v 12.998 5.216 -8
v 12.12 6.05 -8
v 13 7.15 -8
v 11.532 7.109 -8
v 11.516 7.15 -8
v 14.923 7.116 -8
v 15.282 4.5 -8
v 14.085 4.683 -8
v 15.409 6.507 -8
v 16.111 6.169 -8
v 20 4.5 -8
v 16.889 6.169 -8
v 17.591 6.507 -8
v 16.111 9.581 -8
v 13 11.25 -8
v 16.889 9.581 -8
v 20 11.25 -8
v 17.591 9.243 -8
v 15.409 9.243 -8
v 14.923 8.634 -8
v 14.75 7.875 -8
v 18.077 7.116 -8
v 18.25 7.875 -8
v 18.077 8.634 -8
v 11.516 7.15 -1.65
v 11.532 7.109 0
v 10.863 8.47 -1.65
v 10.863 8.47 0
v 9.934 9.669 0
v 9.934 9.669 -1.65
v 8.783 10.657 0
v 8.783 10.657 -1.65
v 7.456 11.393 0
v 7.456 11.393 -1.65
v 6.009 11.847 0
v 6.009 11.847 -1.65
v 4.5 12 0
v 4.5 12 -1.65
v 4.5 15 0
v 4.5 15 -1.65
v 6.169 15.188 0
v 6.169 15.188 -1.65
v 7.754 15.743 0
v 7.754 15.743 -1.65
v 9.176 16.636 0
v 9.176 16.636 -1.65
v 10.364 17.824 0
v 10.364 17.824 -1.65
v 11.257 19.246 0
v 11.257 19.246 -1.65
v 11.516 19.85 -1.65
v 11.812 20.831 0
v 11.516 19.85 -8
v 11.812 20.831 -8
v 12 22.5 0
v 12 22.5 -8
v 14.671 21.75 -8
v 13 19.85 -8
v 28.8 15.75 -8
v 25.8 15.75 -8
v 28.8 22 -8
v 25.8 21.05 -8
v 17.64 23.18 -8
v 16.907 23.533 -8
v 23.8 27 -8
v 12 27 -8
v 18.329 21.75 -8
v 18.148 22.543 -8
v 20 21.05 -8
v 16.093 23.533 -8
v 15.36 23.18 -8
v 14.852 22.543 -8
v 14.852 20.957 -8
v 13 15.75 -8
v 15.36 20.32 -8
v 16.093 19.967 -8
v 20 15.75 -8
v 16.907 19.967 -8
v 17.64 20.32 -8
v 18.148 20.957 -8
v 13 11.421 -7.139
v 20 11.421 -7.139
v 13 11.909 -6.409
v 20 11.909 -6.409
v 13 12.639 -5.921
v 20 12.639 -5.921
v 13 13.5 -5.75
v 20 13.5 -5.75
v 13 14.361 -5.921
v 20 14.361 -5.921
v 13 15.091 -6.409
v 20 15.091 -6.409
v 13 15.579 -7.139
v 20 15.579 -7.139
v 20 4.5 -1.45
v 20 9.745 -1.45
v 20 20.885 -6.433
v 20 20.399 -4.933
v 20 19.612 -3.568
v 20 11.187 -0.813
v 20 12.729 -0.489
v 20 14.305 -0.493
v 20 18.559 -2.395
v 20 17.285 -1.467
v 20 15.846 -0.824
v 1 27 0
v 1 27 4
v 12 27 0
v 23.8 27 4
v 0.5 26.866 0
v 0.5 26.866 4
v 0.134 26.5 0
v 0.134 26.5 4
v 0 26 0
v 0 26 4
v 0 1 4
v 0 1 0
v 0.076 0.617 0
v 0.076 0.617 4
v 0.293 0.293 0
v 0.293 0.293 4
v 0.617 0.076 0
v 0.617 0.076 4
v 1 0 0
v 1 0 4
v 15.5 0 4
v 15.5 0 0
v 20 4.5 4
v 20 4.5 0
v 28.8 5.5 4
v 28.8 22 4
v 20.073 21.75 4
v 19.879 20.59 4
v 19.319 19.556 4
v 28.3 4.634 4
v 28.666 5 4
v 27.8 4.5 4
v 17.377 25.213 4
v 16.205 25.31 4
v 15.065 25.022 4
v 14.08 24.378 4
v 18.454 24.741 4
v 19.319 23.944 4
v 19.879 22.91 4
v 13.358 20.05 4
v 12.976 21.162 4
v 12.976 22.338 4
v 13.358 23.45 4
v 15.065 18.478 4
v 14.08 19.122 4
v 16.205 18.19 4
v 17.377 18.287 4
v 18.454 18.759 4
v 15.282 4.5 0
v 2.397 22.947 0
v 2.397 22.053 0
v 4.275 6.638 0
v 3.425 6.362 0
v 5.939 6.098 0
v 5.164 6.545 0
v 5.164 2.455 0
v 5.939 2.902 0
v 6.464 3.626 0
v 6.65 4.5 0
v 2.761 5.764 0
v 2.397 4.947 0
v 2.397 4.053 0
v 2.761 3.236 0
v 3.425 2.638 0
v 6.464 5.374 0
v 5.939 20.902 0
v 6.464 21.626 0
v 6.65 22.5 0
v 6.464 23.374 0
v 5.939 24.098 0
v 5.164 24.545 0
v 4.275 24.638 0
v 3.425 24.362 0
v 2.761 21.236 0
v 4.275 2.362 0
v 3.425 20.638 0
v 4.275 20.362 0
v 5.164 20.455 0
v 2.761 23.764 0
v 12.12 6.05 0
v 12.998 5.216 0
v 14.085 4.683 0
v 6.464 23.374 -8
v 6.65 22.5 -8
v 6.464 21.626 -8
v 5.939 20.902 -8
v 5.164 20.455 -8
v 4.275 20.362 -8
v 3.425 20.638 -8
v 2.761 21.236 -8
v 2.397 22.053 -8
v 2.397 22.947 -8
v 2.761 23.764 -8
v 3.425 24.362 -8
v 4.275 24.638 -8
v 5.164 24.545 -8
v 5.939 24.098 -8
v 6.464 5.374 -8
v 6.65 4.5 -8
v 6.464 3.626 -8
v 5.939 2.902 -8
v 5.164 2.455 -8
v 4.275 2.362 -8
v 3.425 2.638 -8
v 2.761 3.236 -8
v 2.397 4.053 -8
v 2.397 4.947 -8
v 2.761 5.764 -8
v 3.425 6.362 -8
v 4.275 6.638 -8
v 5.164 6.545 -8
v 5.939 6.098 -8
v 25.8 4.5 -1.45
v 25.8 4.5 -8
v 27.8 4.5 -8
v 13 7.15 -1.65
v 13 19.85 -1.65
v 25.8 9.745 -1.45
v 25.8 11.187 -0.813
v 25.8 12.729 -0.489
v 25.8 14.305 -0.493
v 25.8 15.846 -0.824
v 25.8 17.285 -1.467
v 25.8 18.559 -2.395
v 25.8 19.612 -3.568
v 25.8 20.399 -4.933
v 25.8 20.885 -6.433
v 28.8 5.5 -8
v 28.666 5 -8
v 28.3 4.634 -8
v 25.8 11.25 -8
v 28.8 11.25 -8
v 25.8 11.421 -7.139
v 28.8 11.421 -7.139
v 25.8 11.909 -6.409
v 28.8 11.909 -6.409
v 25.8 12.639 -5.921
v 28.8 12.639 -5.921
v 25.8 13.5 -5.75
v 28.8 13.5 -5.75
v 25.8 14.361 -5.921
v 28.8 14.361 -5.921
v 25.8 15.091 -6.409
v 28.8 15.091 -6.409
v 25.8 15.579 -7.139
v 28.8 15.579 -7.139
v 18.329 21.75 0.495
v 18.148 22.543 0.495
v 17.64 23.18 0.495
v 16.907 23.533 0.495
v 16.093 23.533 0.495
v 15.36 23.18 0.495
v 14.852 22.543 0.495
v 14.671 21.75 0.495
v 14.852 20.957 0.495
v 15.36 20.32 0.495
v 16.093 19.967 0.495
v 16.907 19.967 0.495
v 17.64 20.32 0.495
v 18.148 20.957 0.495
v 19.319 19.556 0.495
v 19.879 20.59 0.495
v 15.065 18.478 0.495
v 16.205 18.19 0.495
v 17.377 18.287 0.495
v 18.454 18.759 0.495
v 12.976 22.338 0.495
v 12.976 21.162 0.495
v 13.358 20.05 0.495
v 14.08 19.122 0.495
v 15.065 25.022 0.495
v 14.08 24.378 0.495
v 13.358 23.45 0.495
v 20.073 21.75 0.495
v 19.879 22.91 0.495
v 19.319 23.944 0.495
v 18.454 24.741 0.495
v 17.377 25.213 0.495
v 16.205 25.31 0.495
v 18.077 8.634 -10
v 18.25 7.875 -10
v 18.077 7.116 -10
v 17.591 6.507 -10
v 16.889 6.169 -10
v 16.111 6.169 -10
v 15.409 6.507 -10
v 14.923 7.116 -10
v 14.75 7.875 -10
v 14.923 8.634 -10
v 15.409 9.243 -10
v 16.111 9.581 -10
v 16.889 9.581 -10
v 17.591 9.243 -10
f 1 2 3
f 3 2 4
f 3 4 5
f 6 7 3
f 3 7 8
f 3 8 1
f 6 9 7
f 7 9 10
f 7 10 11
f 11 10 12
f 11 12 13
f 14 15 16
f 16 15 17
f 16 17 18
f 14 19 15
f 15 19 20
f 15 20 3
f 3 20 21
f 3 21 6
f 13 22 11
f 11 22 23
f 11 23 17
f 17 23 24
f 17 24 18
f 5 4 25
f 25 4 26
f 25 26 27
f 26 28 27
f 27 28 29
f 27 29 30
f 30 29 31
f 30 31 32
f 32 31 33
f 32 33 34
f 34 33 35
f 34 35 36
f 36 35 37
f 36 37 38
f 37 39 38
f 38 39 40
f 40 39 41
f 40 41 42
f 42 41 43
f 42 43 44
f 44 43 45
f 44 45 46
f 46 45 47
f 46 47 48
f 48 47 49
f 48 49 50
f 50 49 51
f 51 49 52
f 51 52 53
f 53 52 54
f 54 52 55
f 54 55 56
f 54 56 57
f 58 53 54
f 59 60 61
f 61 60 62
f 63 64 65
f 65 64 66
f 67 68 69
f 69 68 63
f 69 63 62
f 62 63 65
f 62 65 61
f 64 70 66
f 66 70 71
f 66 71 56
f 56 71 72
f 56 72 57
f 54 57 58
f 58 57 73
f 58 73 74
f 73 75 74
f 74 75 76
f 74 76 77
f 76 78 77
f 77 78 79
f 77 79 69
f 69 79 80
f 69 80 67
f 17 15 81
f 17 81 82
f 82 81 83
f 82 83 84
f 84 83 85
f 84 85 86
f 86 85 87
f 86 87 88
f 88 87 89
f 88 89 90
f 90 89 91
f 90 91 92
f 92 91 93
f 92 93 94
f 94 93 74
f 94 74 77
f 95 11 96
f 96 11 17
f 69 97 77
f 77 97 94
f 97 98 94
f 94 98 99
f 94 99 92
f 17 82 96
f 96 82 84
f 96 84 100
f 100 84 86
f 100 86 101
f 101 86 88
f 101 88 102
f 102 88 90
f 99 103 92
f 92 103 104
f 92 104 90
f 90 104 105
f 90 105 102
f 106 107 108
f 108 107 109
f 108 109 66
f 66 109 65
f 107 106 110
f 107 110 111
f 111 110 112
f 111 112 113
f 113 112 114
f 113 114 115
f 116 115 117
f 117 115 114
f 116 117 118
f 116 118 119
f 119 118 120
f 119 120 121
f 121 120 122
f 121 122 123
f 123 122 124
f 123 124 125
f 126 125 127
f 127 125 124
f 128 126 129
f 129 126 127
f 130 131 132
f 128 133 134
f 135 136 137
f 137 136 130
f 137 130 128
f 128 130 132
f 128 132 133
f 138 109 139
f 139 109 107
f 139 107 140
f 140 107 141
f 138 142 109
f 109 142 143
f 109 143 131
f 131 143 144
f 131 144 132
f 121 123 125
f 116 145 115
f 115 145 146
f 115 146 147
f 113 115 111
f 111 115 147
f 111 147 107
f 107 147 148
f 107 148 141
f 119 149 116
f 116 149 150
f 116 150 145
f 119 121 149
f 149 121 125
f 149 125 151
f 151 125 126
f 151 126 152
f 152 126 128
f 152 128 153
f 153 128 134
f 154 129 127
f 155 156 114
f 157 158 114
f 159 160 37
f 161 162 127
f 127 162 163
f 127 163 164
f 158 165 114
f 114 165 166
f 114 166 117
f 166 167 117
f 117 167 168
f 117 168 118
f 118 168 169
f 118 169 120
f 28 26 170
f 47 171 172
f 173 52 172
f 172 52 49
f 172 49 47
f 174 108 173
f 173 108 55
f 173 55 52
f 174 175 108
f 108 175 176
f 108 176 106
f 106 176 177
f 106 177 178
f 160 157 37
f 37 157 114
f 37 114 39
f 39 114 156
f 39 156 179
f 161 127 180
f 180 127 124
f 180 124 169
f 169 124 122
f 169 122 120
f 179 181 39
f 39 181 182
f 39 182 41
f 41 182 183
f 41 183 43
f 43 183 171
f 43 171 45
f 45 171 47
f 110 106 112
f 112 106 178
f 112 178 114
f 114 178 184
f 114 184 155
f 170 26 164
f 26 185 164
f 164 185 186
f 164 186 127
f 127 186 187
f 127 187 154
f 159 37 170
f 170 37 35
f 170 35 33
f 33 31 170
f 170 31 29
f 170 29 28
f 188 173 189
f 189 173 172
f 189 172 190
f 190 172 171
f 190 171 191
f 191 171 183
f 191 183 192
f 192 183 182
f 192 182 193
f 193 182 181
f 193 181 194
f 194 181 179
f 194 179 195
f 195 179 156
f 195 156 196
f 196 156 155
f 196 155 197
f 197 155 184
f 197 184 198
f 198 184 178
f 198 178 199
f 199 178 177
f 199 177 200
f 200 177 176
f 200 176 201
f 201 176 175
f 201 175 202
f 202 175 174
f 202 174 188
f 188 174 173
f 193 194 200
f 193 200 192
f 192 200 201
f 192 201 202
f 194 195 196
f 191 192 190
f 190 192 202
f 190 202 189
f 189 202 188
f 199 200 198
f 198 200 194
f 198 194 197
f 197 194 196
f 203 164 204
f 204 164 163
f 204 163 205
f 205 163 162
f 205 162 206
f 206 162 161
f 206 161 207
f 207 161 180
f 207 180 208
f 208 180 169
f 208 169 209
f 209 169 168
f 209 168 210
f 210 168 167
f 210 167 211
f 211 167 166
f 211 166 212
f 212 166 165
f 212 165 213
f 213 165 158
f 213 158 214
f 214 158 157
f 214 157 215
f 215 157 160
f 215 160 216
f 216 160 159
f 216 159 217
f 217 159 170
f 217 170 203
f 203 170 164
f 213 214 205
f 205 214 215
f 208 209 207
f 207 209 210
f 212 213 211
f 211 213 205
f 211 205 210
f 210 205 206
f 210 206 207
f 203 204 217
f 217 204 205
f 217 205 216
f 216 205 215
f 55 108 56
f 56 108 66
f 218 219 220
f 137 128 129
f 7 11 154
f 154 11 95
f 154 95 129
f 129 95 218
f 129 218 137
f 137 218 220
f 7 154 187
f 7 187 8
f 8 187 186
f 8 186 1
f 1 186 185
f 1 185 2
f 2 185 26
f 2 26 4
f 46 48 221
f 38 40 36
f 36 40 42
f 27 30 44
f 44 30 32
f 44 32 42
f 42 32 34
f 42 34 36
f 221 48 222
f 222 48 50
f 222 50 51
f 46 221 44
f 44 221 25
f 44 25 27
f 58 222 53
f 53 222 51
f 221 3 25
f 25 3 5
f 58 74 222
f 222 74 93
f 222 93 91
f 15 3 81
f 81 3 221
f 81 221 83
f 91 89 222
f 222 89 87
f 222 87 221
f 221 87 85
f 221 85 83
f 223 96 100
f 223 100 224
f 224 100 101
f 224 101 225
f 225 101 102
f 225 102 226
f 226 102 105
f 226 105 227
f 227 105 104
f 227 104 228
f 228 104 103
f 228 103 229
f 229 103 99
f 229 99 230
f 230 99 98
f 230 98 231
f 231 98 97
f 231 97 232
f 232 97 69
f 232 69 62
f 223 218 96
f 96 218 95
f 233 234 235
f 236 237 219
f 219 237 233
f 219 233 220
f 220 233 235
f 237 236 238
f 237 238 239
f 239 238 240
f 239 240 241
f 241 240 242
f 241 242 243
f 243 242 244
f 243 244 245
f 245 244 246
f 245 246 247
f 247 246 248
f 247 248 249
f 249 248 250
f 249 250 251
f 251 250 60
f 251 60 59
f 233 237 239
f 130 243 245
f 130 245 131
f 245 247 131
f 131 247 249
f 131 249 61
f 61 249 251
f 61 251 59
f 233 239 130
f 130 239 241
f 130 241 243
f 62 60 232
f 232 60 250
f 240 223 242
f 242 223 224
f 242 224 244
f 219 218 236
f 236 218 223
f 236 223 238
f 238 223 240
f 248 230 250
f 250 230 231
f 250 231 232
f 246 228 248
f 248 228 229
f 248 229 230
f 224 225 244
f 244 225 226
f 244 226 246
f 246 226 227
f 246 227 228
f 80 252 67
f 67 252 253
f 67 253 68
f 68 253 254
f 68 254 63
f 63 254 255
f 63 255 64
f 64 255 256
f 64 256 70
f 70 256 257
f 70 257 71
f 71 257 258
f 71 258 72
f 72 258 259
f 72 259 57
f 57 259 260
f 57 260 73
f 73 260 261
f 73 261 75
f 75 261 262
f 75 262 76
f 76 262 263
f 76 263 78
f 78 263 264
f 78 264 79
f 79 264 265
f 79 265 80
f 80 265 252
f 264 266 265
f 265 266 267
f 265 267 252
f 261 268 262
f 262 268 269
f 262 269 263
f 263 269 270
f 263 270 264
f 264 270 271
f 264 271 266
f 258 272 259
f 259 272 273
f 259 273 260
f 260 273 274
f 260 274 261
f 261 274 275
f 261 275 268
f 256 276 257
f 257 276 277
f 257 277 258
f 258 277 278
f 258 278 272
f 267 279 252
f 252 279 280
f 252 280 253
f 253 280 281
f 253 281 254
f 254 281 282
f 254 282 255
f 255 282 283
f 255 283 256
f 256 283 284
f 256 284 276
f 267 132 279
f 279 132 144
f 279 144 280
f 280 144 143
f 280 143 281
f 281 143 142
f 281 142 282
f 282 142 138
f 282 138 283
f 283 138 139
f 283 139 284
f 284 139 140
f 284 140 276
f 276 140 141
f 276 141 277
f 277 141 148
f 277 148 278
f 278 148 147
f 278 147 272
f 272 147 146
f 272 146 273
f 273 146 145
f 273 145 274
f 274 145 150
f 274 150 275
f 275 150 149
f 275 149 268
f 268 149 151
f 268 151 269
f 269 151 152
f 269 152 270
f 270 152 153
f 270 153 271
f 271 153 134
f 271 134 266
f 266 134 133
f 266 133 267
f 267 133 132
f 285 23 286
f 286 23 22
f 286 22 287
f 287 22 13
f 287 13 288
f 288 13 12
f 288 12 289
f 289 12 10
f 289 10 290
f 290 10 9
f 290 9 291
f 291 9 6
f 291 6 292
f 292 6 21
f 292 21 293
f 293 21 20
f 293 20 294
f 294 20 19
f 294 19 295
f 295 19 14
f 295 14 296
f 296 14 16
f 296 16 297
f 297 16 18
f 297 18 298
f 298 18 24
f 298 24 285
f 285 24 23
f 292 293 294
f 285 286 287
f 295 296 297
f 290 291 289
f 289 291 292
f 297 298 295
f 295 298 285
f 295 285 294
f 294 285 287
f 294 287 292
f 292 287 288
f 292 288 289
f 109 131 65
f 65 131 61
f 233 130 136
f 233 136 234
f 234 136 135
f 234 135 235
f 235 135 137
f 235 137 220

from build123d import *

# Parameters (mm, degrees)
BOSS_EXTRUDE1_DEPTH                            = 4
SKETCH3_R                                      = 2.15
BOSS_EXTRUDE2_DEPTH                            = 8
BOSS_EXTRUDE3_DEPTH                            = 8
CUT_EXTRUDE2_REACH                             = 34.144
SKETCH4_R                                      = 2.25
SKETCH4_4_W                                    = 12.7
SKETCH4_4_H                                    = 12.7
SKETCH4_4_R                                    = 2.25
CUT_EXTRUDE3_DEPTH                             = 8.5
BOSS_EXTRUDE4_DEPTH                            = 5.8
BOSS_EXTRUDE7_DEPTH                            = 3
CBORE_FOR_6_SOCKET_HEAD_CAP_SCREW1_D           = 3.6576
CBORE_FOR_6_SOCKET_HEAD_CAP_SCREW1_CBORE_D     = 7.14502
CBORE_FOR_6_SOCKET_HEAD_CAP_SCREW1_CBORE_DEPTH = 3.5052
SKETCH12_R                                     = 1.75
BOSS_EXTRUDE8_DEPTH                            = 2
CHAMFER1_SIZE                                  = 5
FILLET1_R                                      = 1


with BuildPart() as part:
    # Sketch2 → Boss-Extrude1 (new body)
    with BuildSketch(Plane.XY):
        with BuildLine():
            Line((15.5, 0), (20, 4.5))
            Line((20, 4.5), (20, 27))
            Line((20, 27), (1, 27))
            ThreePointArc((1, 27), (0.292893219, 26.707106781), (0, 26))
            Line((0, 26), (0, 1))
            ThreePointArc((0, 1), (0.292893219, 0.292893219), (1, 0))
            Line((1, 0), (15.5, 0))
        make_face()
    extrude(amount=BOSS_EXTRUDE1_DEPTH)

    # Sketch3 → Boss-Extrude2 (add)
    with BuildSketch(Plane.XY):
        with Locations((4.5, 22.5)):
            Circle(SKETCH3_R)
        with Locations((4.5, 4.5)):
            Circle(SKETCH3_R)
    extrude(amount=-BOSS_EXTRUDE2_DEPTH)

    # Sketch3<3> → Boss-Extrude3 (add)
    with BuildSketch(Plane.XY):
        with BuildLine():
            Line((4.5, 15), (4.5, 12))
            ThreePointArc((4.5, 12), (8.782801805, 10.656915518), (11.531693039, 7.108695652))
            ThreePointArc((11.531693039, 7.108695652), (12.997768364, 5.216311724), (15.281929326, 4.5))
            Line((15.281929326, 4.5), (20, 4.5))
            Line((20, 4.5), (20, 27))
            Line((20, 27), (12, 27))
            Line((12, 27), (12, 22.5))
            ThreePointArc((12, 22.5), (9.803300859, 17.196699141), (4.5, 15))
        make_face()
    extrude(amount=-BOSS_EXTRUDE3_DEPTH)

    # Cut-Extrude2: up to this face of the body (flat: up to its plane)
    cut_extrude2_end = Plane(part.part.faces().sort_by_distance((20, 15.75, -2))[0])
    # Sketch4 → Cut-Extrude2 (cut, up to the picked face)
    with BuildSketch(Plane(origin=(4.5, 0, 0), x_dir=(0, 0, -1), z_dir=(1, 0, 0)), mode=Mode.PRIVATE) as cut_extrude2_sk1:
        with Locations((8, 13.5)):
            Circle(SKETCH4_R)
    cut_extrude2_tool1 = split(extrude(cut_extrude2_sk1.sketch, amount=CUT_EXTRUDE2_REACH, mode=Mode.PRIVATE), bisect_by=cut_extrude2_end, keep=Keep.BOTH, mode=Mode.PRIVATE)
    add(cut_extrude2_tool1.solids().sort_by(Axis((4.5, 13.5, -8), (1, 0, 0)))[0], mode=Mode.SUBTRACT)

    # Sketch4<4> → Cut-Extrude3 (cut)
    with BuildSketch(Plane(origin=(4.5, 0, 0), x_dir=(0, 0, -1), z_dir=(1, 0, 0))):
        with Locations((8, 13.5)):
            Rectangle(SKETCH4_4_W, SKETCH4_4_H)
        with Locations((8, 13.5)):
            Circle(SKETCH4_4_R, mode=Mode.SUBTRACT)
    extrude(amount=CUT_EXTRUDE3_DEPTH, mode=Mode.SUBTRACT)

    # Sketch5 → Boss-Extrude4 (add)
    with BuildSketch(Plane(origin=(20, 0, 0), x_dir=(0, 0, -1), z_dir=(1, 0, 0))):
        with BuildLine():
            Line((1.45, 4.5), (1.45, 9.745003329))
            ThreePointArc((1.45, 9.745003329), (1.467285217, 17.28498845), (8, 21.05))
            Line((8, 21.05), (8, 27))
            Line((8, 27), (-4, 27))
            Line((-4, 27), (-4, 4.5))
            Line((-4, 4.5), (0, 4.5))
            Line((0, 4.5), (1.45, 4.5))
        make_face()
    extrude(amount=BOSS_EXTRUDE4_DEPTH)

    # Sketch8 → Boss-Extrude7 (add)
    with BuildSketch(Plane(origin=(25.8, 0, 0), x_dir=(0, 0, -1), z_dir=(1, 0, 0))):
        with BuildLine():
            Line((1.45, 4.5), (1.45, 9.745003329))
            ThreePointArc((1.45, 9.745003329), (1.467285217, 17.28498845), (8, 21.05))
            Line((8, 21.05), (8, 27))
            Line((8, 27), (-4, 27))
            Line((-4, 27), (-4, 4.5))
            Line((-4, 4.5), (1.45, 4.5))
        make_face()
        with BuildLine():
            Line((8, 15.75), (8, 21.05))
            ThreePointArc((8, 21.05), (1.467285217, 17.28498845), (1.45, 9.745003329))
            Line((1.45, 9.745003329), (1.45, 4.5))
            Line((1.45, 4.5), (8, 4.5))
            Line((8, 4.5), (8, 11.25))
            ThreePointArc((8, 11.25), (5.75, 13.5), (8, 15.75))
        make_face()
    extrude(amount=BOSS_EXTRUDE7_DEPTH)

    # CBORE for #6 Socket Head Cap Screw1 (through all)
    with Locations(Plane.XY.offset(4)):
        with Locations((16.5, 21.75)):
            CounterBoreHole(CBORE_FOR_6_SOCKET_HEAD_CAP_SCREW1_D / 2, CBORE_FOR_6_SOCKET_HEAD_CAP_SCREW1_CBORE_D / 2, CBORE_FOR_6_SOCKET_HEAD_CAP_SCREW1_CBORE_DEPTH)

    # Sketch12 → Boss-Extrude8 (add)
    with BuildSketch(Plane(origin=(0, 0, -8), x_dir=(-1, 0, 0), z_dir=(0, 0, -1))):
        with Locations(Location((-16.5, 7.875, 0), (0, 0, 180))):
            Circle(SKETCH12_R)
    extrude(amount=BOSS_EXTRUDE8_DEPTH)

    # Chamfer1
    chamfer1_edges = [part.edges().sort_by_distance(p)[0] for p in [
        (28.8, 27, -2),
    ]]
    chamfer(chamfer1_edges, length=CHAMFER1_SIZE)

    # Fillet1
    fillet1_edges = [part.edges().sort_by_distance(p)[0] for p in [
        (28.8, 4.5, -2),
    ]]
    fillet(fillet1_edges, radius=FILLET1_R)


solid = part.part
